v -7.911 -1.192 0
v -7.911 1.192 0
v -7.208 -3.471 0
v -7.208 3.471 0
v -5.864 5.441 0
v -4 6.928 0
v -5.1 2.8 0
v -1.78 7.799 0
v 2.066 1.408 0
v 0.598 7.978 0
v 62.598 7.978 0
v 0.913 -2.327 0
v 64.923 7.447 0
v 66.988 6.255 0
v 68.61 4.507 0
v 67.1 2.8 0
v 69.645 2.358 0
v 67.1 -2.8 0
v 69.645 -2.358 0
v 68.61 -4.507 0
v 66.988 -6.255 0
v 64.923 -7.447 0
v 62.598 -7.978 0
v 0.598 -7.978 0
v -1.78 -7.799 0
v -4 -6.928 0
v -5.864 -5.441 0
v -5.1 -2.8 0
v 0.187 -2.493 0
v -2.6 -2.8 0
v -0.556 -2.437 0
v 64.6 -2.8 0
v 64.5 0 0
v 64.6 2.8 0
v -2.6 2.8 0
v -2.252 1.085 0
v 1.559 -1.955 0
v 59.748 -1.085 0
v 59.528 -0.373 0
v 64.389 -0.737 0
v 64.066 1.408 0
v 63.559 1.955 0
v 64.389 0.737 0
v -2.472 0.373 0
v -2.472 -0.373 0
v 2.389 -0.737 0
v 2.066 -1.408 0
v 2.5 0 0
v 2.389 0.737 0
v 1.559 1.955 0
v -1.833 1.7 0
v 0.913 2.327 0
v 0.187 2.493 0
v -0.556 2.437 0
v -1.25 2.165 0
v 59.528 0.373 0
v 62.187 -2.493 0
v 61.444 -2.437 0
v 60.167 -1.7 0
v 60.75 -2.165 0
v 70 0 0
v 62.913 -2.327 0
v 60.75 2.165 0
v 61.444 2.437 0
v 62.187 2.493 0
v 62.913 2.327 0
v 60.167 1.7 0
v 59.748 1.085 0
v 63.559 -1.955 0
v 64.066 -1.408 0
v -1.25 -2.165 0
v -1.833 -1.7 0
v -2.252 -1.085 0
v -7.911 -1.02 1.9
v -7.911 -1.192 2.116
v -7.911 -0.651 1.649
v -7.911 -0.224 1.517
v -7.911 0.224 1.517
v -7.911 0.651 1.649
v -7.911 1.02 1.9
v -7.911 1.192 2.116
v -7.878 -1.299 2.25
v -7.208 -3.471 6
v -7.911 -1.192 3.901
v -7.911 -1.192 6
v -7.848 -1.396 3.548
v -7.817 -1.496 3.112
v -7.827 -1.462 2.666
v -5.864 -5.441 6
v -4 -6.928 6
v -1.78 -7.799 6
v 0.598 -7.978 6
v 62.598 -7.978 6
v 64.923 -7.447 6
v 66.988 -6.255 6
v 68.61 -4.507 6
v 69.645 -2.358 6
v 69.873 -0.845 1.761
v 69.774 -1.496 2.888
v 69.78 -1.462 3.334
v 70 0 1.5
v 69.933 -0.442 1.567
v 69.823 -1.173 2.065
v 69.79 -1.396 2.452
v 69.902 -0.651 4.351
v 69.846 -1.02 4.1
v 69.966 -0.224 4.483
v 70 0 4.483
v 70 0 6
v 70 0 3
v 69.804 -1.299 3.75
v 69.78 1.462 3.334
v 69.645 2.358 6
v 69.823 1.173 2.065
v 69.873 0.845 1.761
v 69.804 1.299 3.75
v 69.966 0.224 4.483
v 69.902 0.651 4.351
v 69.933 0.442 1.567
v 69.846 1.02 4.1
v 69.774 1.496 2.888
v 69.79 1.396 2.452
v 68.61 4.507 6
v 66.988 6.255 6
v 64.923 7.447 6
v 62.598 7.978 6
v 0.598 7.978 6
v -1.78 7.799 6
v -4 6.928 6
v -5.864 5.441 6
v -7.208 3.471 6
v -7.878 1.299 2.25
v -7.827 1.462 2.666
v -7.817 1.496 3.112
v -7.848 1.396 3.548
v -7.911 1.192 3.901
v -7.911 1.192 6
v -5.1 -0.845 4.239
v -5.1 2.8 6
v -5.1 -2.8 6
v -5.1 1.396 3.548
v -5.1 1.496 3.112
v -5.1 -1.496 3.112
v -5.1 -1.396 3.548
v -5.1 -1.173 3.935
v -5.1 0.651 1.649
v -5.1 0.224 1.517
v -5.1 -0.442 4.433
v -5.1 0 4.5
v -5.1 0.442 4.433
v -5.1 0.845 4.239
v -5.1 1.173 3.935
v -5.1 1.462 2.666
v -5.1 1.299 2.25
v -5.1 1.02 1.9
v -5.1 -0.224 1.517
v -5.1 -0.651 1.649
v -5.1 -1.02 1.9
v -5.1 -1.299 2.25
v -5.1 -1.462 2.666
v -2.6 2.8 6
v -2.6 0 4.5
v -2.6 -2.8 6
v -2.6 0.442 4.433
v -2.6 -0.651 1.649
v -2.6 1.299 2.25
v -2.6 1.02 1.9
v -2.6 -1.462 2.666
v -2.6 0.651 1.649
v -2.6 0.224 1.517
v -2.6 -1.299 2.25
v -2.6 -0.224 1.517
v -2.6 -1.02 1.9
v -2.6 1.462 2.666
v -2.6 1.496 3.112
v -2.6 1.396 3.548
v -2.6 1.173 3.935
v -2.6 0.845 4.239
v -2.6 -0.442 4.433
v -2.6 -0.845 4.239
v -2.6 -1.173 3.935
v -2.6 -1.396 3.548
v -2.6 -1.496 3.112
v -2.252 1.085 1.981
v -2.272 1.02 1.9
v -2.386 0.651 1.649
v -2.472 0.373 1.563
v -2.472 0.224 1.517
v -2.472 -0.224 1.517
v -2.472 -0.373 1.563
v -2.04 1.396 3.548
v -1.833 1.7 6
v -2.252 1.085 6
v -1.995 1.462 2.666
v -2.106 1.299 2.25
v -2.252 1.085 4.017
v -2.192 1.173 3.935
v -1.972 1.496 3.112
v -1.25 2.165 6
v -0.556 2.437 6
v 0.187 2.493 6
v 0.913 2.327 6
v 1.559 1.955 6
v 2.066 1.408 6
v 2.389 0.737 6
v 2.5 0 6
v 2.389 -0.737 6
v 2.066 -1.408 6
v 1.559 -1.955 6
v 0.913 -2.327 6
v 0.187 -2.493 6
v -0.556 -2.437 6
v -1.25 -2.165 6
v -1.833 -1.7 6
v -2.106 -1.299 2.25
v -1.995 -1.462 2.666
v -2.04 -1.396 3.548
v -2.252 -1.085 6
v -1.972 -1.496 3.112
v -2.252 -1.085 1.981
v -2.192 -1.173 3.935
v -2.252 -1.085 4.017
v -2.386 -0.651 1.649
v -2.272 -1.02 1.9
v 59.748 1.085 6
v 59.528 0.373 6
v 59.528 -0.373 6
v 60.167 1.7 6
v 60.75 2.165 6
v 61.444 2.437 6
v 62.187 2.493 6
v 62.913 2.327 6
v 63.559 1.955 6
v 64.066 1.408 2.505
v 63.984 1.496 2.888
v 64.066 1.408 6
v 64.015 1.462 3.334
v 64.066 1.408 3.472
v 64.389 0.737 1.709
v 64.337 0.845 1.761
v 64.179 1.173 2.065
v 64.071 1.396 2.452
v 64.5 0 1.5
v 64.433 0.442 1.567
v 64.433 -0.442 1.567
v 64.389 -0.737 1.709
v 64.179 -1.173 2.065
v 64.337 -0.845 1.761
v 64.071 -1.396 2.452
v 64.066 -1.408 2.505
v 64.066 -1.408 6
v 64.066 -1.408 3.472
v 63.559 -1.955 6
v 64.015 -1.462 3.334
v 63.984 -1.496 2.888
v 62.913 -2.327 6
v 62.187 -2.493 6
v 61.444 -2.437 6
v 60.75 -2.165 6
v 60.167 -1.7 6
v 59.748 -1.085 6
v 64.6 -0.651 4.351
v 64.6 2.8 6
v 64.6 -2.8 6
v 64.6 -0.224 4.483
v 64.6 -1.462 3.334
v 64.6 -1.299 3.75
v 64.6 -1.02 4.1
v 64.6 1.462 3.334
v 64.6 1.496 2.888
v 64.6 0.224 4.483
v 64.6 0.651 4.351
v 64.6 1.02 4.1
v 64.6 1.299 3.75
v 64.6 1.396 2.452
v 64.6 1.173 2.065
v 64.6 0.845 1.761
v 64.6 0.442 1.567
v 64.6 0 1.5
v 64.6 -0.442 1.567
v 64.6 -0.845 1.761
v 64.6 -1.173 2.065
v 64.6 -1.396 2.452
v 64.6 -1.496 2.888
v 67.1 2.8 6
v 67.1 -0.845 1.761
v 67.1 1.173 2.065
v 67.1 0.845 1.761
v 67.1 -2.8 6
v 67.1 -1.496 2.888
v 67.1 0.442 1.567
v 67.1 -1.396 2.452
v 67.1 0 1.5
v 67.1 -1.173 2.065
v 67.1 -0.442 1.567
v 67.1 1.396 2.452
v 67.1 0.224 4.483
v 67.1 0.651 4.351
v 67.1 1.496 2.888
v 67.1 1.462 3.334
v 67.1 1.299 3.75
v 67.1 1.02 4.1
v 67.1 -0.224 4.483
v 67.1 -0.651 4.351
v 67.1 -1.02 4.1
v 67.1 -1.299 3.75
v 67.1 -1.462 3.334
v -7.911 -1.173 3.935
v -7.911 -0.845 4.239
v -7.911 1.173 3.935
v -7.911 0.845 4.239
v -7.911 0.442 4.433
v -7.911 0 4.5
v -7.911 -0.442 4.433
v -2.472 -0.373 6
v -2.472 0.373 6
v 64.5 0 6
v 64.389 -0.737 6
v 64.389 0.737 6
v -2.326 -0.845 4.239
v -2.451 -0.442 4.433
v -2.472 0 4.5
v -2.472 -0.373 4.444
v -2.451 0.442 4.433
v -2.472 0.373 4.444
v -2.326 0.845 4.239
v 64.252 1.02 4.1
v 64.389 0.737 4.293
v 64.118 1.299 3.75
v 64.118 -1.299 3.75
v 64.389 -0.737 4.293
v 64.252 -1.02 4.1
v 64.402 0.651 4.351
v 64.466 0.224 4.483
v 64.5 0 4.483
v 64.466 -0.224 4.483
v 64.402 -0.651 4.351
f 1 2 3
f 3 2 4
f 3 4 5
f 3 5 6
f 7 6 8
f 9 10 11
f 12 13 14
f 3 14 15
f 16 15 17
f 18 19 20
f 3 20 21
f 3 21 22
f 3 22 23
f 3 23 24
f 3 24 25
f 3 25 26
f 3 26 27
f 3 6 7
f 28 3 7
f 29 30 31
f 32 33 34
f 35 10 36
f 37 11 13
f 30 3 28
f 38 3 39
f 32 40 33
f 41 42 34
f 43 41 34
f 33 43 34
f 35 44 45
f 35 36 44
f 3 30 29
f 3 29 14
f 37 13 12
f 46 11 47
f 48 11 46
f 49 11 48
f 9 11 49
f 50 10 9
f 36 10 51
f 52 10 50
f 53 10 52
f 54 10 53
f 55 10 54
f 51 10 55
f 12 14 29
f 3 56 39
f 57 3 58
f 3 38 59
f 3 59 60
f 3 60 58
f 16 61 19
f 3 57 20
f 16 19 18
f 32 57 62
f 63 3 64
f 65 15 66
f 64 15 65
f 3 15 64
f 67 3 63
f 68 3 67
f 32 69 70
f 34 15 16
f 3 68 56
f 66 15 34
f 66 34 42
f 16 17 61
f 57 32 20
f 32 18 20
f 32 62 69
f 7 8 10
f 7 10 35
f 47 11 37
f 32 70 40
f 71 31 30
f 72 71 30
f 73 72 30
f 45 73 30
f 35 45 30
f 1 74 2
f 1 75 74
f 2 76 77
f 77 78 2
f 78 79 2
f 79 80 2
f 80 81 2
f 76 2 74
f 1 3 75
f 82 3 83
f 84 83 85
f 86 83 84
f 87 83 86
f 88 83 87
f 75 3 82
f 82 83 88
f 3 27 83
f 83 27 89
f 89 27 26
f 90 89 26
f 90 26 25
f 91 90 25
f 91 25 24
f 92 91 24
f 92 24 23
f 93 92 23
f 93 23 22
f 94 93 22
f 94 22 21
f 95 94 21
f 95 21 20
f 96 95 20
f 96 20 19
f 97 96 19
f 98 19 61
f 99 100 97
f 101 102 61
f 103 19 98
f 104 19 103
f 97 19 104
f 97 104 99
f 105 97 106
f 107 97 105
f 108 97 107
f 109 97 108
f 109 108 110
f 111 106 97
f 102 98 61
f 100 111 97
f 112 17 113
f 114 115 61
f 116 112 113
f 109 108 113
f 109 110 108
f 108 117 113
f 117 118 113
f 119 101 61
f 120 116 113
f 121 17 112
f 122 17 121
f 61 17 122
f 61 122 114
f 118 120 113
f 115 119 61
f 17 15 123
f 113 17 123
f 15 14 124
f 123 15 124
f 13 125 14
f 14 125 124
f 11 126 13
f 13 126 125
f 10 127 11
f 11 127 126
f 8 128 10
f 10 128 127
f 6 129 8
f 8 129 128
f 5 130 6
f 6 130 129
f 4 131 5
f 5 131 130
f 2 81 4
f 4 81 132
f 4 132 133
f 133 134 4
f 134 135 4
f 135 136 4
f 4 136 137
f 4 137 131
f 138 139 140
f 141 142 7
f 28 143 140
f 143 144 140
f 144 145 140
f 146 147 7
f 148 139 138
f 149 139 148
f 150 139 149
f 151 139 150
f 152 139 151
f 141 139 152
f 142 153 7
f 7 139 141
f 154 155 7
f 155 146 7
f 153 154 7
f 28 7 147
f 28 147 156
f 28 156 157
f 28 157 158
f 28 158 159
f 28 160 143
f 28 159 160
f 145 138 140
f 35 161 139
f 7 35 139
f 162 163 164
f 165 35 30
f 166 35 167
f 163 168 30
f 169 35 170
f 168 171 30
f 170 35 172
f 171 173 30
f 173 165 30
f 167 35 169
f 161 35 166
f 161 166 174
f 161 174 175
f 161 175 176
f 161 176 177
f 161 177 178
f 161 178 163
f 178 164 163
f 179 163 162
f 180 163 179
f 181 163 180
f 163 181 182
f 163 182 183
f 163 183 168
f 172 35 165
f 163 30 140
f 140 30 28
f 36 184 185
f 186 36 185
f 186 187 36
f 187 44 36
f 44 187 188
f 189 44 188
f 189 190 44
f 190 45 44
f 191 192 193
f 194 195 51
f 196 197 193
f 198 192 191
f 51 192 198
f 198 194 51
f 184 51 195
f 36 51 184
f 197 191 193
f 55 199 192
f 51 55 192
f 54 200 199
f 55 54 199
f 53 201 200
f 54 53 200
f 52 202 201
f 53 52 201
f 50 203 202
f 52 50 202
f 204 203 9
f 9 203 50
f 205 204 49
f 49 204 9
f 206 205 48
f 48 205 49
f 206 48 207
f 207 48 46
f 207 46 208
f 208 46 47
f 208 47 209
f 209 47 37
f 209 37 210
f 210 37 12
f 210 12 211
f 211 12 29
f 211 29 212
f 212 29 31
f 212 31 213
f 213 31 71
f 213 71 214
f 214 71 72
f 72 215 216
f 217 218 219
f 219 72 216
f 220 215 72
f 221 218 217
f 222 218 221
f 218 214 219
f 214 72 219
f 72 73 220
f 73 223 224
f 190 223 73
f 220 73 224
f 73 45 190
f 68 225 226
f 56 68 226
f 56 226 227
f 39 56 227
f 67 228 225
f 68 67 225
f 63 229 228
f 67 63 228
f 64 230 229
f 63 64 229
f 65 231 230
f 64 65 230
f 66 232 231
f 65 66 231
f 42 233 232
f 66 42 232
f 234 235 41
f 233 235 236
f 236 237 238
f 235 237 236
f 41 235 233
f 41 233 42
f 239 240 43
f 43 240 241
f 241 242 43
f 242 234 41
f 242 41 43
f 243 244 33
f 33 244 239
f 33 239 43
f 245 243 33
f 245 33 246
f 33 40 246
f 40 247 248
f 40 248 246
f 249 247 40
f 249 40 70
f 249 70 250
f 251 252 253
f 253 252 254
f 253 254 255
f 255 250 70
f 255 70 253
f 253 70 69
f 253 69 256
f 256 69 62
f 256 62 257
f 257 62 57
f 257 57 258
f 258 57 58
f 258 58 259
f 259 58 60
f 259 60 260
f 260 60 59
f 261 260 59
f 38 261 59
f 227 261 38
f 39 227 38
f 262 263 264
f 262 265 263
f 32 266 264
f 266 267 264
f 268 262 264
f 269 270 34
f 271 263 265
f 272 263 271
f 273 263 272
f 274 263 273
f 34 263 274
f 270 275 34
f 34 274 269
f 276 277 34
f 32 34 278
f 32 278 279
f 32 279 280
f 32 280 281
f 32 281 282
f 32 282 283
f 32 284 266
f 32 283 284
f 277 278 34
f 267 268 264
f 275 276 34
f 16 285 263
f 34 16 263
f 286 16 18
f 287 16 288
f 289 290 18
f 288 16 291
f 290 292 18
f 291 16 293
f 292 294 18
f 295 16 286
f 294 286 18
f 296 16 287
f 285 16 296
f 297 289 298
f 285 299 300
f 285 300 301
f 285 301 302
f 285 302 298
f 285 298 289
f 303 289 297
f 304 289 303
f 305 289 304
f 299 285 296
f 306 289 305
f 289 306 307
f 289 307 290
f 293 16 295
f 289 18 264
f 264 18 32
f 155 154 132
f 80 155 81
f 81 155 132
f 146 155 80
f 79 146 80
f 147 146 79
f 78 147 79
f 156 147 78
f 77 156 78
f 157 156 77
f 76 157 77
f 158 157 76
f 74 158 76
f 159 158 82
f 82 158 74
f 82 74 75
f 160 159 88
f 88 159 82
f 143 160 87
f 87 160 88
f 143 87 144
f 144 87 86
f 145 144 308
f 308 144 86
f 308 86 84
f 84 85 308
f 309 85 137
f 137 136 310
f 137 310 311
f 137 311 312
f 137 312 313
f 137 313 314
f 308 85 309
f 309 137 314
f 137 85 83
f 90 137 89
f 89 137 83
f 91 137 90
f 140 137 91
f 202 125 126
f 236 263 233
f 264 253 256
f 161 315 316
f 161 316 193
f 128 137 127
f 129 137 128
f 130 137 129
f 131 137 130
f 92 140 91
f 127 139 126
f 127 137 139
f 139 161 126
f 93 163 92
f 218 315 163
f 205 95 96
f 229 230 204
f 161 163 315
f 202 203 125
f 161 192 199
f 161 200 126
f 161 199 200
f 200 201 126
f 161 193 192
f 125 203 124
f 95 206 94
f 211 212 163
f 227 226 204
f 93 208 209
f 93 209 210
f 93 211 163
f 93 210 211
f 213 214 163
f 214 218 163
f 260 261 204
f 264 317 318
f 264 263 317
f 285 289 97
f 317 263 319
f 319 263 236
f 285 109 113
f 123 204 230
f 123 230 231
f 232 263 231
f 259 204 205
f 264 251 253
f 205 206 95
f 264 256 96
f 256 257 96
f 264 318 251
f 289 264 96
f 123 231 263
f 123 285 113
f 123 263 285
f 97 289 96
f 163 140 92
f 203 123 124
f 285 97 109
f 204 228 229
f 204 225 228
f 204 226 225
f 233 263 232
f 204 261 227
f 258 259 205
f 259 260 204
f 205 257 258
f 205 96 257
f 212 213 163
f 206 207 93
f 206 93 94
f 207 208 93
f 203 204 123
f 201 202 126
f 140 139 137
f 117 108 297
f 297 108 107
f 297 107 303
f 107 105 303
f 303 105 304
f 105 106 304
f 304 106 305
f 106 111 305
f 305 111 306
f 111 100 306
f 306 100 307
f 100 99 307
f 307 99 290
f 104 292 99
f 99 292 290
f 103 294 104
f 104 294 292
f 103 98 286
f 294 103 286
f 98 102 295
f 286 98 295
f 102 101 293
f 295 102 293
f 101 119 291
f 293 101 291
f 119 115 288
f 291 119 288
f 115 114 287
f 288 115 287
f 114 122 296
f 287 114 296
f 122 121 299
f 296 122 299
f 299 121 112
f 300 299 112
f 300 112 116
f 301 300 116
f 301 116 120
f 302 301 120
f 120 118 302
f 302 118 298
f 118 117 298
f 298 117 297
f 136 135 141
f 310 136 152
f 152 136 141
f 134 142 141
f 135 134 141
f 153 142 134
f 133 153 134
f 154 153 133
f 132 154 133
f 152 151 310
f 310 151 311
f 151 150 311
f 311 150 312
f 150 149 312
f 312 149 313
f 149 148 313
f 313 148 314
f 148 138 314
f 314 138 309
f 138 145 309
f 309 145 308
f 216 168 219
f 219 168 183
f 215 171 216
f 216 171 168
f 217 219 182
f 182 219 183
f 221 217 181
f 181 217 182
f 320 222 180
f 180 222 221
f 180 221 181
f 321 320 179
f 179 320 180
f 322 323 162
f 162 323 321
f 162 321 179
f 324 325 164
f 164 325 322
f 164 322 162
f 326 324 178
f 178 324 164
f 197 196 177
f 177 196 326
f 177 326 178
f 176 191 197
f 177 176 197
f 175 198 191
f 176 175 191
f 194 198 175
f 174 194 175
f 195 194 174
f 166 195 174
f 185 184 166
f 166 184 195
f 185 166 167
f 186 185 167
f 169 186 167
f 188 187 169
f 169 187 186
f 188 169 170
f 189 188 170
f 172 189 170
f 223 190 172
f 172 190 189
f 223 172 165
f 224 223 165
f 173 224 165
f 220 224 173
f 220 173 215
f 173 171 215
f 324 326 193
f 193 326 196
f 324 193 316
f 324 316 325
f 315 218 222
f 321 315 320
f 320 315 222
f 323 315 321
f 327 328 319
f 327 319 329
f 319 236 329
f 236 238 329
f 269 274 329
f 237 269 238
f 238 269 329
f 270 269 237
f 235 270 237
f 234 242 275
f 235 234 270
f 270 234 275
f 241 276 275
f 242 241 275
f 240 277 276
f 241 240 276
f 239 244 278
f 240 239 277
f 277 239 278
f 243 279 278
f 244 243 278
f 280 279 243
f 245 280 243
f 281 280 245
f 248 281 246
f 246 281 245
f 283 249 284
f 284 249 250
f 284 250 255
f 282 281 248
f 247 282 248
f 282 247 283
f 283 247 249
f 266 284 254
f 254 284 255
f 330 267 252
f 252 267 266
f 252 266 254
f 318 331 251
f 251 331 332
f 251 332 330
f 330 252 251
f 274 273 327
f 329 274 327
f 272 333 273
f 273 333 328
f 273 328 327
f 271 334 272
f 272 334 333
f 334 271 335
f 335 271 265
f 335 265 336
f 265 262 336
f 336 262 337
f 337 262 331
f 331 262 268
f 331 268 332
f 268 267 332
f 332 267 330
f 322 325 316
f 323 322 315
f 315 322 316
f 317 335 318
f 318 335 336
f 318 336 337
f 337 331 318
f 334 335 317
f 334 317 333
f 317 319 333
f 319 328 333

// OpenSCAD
$fn = 21;
difference(){
	union(){
		hull(){
			cylinder(r = 8, h = 6);
			translate([62,0,0])cylinder(r = 8, h = 6);
		}


	}
	translate([0,0,-1])cylinder(r = 2.5, h = 8);
	translate([62,0,-1])cylinder(r = 2.5, h = 8);
	translate([-1,0,3])rotate([0,-90,0])cylinder(r = 1.5, h = 8);
	translate([62,0,3])rotate([0,90,0])cylinder(r = 1.5, h = 8);
	translate([-2.5-2.6,-2.8,-1])cube([2.5,5.6,8]);
	translate([62+2.6,-2.8,-1])cube([2.5,5.6,8]);
}
